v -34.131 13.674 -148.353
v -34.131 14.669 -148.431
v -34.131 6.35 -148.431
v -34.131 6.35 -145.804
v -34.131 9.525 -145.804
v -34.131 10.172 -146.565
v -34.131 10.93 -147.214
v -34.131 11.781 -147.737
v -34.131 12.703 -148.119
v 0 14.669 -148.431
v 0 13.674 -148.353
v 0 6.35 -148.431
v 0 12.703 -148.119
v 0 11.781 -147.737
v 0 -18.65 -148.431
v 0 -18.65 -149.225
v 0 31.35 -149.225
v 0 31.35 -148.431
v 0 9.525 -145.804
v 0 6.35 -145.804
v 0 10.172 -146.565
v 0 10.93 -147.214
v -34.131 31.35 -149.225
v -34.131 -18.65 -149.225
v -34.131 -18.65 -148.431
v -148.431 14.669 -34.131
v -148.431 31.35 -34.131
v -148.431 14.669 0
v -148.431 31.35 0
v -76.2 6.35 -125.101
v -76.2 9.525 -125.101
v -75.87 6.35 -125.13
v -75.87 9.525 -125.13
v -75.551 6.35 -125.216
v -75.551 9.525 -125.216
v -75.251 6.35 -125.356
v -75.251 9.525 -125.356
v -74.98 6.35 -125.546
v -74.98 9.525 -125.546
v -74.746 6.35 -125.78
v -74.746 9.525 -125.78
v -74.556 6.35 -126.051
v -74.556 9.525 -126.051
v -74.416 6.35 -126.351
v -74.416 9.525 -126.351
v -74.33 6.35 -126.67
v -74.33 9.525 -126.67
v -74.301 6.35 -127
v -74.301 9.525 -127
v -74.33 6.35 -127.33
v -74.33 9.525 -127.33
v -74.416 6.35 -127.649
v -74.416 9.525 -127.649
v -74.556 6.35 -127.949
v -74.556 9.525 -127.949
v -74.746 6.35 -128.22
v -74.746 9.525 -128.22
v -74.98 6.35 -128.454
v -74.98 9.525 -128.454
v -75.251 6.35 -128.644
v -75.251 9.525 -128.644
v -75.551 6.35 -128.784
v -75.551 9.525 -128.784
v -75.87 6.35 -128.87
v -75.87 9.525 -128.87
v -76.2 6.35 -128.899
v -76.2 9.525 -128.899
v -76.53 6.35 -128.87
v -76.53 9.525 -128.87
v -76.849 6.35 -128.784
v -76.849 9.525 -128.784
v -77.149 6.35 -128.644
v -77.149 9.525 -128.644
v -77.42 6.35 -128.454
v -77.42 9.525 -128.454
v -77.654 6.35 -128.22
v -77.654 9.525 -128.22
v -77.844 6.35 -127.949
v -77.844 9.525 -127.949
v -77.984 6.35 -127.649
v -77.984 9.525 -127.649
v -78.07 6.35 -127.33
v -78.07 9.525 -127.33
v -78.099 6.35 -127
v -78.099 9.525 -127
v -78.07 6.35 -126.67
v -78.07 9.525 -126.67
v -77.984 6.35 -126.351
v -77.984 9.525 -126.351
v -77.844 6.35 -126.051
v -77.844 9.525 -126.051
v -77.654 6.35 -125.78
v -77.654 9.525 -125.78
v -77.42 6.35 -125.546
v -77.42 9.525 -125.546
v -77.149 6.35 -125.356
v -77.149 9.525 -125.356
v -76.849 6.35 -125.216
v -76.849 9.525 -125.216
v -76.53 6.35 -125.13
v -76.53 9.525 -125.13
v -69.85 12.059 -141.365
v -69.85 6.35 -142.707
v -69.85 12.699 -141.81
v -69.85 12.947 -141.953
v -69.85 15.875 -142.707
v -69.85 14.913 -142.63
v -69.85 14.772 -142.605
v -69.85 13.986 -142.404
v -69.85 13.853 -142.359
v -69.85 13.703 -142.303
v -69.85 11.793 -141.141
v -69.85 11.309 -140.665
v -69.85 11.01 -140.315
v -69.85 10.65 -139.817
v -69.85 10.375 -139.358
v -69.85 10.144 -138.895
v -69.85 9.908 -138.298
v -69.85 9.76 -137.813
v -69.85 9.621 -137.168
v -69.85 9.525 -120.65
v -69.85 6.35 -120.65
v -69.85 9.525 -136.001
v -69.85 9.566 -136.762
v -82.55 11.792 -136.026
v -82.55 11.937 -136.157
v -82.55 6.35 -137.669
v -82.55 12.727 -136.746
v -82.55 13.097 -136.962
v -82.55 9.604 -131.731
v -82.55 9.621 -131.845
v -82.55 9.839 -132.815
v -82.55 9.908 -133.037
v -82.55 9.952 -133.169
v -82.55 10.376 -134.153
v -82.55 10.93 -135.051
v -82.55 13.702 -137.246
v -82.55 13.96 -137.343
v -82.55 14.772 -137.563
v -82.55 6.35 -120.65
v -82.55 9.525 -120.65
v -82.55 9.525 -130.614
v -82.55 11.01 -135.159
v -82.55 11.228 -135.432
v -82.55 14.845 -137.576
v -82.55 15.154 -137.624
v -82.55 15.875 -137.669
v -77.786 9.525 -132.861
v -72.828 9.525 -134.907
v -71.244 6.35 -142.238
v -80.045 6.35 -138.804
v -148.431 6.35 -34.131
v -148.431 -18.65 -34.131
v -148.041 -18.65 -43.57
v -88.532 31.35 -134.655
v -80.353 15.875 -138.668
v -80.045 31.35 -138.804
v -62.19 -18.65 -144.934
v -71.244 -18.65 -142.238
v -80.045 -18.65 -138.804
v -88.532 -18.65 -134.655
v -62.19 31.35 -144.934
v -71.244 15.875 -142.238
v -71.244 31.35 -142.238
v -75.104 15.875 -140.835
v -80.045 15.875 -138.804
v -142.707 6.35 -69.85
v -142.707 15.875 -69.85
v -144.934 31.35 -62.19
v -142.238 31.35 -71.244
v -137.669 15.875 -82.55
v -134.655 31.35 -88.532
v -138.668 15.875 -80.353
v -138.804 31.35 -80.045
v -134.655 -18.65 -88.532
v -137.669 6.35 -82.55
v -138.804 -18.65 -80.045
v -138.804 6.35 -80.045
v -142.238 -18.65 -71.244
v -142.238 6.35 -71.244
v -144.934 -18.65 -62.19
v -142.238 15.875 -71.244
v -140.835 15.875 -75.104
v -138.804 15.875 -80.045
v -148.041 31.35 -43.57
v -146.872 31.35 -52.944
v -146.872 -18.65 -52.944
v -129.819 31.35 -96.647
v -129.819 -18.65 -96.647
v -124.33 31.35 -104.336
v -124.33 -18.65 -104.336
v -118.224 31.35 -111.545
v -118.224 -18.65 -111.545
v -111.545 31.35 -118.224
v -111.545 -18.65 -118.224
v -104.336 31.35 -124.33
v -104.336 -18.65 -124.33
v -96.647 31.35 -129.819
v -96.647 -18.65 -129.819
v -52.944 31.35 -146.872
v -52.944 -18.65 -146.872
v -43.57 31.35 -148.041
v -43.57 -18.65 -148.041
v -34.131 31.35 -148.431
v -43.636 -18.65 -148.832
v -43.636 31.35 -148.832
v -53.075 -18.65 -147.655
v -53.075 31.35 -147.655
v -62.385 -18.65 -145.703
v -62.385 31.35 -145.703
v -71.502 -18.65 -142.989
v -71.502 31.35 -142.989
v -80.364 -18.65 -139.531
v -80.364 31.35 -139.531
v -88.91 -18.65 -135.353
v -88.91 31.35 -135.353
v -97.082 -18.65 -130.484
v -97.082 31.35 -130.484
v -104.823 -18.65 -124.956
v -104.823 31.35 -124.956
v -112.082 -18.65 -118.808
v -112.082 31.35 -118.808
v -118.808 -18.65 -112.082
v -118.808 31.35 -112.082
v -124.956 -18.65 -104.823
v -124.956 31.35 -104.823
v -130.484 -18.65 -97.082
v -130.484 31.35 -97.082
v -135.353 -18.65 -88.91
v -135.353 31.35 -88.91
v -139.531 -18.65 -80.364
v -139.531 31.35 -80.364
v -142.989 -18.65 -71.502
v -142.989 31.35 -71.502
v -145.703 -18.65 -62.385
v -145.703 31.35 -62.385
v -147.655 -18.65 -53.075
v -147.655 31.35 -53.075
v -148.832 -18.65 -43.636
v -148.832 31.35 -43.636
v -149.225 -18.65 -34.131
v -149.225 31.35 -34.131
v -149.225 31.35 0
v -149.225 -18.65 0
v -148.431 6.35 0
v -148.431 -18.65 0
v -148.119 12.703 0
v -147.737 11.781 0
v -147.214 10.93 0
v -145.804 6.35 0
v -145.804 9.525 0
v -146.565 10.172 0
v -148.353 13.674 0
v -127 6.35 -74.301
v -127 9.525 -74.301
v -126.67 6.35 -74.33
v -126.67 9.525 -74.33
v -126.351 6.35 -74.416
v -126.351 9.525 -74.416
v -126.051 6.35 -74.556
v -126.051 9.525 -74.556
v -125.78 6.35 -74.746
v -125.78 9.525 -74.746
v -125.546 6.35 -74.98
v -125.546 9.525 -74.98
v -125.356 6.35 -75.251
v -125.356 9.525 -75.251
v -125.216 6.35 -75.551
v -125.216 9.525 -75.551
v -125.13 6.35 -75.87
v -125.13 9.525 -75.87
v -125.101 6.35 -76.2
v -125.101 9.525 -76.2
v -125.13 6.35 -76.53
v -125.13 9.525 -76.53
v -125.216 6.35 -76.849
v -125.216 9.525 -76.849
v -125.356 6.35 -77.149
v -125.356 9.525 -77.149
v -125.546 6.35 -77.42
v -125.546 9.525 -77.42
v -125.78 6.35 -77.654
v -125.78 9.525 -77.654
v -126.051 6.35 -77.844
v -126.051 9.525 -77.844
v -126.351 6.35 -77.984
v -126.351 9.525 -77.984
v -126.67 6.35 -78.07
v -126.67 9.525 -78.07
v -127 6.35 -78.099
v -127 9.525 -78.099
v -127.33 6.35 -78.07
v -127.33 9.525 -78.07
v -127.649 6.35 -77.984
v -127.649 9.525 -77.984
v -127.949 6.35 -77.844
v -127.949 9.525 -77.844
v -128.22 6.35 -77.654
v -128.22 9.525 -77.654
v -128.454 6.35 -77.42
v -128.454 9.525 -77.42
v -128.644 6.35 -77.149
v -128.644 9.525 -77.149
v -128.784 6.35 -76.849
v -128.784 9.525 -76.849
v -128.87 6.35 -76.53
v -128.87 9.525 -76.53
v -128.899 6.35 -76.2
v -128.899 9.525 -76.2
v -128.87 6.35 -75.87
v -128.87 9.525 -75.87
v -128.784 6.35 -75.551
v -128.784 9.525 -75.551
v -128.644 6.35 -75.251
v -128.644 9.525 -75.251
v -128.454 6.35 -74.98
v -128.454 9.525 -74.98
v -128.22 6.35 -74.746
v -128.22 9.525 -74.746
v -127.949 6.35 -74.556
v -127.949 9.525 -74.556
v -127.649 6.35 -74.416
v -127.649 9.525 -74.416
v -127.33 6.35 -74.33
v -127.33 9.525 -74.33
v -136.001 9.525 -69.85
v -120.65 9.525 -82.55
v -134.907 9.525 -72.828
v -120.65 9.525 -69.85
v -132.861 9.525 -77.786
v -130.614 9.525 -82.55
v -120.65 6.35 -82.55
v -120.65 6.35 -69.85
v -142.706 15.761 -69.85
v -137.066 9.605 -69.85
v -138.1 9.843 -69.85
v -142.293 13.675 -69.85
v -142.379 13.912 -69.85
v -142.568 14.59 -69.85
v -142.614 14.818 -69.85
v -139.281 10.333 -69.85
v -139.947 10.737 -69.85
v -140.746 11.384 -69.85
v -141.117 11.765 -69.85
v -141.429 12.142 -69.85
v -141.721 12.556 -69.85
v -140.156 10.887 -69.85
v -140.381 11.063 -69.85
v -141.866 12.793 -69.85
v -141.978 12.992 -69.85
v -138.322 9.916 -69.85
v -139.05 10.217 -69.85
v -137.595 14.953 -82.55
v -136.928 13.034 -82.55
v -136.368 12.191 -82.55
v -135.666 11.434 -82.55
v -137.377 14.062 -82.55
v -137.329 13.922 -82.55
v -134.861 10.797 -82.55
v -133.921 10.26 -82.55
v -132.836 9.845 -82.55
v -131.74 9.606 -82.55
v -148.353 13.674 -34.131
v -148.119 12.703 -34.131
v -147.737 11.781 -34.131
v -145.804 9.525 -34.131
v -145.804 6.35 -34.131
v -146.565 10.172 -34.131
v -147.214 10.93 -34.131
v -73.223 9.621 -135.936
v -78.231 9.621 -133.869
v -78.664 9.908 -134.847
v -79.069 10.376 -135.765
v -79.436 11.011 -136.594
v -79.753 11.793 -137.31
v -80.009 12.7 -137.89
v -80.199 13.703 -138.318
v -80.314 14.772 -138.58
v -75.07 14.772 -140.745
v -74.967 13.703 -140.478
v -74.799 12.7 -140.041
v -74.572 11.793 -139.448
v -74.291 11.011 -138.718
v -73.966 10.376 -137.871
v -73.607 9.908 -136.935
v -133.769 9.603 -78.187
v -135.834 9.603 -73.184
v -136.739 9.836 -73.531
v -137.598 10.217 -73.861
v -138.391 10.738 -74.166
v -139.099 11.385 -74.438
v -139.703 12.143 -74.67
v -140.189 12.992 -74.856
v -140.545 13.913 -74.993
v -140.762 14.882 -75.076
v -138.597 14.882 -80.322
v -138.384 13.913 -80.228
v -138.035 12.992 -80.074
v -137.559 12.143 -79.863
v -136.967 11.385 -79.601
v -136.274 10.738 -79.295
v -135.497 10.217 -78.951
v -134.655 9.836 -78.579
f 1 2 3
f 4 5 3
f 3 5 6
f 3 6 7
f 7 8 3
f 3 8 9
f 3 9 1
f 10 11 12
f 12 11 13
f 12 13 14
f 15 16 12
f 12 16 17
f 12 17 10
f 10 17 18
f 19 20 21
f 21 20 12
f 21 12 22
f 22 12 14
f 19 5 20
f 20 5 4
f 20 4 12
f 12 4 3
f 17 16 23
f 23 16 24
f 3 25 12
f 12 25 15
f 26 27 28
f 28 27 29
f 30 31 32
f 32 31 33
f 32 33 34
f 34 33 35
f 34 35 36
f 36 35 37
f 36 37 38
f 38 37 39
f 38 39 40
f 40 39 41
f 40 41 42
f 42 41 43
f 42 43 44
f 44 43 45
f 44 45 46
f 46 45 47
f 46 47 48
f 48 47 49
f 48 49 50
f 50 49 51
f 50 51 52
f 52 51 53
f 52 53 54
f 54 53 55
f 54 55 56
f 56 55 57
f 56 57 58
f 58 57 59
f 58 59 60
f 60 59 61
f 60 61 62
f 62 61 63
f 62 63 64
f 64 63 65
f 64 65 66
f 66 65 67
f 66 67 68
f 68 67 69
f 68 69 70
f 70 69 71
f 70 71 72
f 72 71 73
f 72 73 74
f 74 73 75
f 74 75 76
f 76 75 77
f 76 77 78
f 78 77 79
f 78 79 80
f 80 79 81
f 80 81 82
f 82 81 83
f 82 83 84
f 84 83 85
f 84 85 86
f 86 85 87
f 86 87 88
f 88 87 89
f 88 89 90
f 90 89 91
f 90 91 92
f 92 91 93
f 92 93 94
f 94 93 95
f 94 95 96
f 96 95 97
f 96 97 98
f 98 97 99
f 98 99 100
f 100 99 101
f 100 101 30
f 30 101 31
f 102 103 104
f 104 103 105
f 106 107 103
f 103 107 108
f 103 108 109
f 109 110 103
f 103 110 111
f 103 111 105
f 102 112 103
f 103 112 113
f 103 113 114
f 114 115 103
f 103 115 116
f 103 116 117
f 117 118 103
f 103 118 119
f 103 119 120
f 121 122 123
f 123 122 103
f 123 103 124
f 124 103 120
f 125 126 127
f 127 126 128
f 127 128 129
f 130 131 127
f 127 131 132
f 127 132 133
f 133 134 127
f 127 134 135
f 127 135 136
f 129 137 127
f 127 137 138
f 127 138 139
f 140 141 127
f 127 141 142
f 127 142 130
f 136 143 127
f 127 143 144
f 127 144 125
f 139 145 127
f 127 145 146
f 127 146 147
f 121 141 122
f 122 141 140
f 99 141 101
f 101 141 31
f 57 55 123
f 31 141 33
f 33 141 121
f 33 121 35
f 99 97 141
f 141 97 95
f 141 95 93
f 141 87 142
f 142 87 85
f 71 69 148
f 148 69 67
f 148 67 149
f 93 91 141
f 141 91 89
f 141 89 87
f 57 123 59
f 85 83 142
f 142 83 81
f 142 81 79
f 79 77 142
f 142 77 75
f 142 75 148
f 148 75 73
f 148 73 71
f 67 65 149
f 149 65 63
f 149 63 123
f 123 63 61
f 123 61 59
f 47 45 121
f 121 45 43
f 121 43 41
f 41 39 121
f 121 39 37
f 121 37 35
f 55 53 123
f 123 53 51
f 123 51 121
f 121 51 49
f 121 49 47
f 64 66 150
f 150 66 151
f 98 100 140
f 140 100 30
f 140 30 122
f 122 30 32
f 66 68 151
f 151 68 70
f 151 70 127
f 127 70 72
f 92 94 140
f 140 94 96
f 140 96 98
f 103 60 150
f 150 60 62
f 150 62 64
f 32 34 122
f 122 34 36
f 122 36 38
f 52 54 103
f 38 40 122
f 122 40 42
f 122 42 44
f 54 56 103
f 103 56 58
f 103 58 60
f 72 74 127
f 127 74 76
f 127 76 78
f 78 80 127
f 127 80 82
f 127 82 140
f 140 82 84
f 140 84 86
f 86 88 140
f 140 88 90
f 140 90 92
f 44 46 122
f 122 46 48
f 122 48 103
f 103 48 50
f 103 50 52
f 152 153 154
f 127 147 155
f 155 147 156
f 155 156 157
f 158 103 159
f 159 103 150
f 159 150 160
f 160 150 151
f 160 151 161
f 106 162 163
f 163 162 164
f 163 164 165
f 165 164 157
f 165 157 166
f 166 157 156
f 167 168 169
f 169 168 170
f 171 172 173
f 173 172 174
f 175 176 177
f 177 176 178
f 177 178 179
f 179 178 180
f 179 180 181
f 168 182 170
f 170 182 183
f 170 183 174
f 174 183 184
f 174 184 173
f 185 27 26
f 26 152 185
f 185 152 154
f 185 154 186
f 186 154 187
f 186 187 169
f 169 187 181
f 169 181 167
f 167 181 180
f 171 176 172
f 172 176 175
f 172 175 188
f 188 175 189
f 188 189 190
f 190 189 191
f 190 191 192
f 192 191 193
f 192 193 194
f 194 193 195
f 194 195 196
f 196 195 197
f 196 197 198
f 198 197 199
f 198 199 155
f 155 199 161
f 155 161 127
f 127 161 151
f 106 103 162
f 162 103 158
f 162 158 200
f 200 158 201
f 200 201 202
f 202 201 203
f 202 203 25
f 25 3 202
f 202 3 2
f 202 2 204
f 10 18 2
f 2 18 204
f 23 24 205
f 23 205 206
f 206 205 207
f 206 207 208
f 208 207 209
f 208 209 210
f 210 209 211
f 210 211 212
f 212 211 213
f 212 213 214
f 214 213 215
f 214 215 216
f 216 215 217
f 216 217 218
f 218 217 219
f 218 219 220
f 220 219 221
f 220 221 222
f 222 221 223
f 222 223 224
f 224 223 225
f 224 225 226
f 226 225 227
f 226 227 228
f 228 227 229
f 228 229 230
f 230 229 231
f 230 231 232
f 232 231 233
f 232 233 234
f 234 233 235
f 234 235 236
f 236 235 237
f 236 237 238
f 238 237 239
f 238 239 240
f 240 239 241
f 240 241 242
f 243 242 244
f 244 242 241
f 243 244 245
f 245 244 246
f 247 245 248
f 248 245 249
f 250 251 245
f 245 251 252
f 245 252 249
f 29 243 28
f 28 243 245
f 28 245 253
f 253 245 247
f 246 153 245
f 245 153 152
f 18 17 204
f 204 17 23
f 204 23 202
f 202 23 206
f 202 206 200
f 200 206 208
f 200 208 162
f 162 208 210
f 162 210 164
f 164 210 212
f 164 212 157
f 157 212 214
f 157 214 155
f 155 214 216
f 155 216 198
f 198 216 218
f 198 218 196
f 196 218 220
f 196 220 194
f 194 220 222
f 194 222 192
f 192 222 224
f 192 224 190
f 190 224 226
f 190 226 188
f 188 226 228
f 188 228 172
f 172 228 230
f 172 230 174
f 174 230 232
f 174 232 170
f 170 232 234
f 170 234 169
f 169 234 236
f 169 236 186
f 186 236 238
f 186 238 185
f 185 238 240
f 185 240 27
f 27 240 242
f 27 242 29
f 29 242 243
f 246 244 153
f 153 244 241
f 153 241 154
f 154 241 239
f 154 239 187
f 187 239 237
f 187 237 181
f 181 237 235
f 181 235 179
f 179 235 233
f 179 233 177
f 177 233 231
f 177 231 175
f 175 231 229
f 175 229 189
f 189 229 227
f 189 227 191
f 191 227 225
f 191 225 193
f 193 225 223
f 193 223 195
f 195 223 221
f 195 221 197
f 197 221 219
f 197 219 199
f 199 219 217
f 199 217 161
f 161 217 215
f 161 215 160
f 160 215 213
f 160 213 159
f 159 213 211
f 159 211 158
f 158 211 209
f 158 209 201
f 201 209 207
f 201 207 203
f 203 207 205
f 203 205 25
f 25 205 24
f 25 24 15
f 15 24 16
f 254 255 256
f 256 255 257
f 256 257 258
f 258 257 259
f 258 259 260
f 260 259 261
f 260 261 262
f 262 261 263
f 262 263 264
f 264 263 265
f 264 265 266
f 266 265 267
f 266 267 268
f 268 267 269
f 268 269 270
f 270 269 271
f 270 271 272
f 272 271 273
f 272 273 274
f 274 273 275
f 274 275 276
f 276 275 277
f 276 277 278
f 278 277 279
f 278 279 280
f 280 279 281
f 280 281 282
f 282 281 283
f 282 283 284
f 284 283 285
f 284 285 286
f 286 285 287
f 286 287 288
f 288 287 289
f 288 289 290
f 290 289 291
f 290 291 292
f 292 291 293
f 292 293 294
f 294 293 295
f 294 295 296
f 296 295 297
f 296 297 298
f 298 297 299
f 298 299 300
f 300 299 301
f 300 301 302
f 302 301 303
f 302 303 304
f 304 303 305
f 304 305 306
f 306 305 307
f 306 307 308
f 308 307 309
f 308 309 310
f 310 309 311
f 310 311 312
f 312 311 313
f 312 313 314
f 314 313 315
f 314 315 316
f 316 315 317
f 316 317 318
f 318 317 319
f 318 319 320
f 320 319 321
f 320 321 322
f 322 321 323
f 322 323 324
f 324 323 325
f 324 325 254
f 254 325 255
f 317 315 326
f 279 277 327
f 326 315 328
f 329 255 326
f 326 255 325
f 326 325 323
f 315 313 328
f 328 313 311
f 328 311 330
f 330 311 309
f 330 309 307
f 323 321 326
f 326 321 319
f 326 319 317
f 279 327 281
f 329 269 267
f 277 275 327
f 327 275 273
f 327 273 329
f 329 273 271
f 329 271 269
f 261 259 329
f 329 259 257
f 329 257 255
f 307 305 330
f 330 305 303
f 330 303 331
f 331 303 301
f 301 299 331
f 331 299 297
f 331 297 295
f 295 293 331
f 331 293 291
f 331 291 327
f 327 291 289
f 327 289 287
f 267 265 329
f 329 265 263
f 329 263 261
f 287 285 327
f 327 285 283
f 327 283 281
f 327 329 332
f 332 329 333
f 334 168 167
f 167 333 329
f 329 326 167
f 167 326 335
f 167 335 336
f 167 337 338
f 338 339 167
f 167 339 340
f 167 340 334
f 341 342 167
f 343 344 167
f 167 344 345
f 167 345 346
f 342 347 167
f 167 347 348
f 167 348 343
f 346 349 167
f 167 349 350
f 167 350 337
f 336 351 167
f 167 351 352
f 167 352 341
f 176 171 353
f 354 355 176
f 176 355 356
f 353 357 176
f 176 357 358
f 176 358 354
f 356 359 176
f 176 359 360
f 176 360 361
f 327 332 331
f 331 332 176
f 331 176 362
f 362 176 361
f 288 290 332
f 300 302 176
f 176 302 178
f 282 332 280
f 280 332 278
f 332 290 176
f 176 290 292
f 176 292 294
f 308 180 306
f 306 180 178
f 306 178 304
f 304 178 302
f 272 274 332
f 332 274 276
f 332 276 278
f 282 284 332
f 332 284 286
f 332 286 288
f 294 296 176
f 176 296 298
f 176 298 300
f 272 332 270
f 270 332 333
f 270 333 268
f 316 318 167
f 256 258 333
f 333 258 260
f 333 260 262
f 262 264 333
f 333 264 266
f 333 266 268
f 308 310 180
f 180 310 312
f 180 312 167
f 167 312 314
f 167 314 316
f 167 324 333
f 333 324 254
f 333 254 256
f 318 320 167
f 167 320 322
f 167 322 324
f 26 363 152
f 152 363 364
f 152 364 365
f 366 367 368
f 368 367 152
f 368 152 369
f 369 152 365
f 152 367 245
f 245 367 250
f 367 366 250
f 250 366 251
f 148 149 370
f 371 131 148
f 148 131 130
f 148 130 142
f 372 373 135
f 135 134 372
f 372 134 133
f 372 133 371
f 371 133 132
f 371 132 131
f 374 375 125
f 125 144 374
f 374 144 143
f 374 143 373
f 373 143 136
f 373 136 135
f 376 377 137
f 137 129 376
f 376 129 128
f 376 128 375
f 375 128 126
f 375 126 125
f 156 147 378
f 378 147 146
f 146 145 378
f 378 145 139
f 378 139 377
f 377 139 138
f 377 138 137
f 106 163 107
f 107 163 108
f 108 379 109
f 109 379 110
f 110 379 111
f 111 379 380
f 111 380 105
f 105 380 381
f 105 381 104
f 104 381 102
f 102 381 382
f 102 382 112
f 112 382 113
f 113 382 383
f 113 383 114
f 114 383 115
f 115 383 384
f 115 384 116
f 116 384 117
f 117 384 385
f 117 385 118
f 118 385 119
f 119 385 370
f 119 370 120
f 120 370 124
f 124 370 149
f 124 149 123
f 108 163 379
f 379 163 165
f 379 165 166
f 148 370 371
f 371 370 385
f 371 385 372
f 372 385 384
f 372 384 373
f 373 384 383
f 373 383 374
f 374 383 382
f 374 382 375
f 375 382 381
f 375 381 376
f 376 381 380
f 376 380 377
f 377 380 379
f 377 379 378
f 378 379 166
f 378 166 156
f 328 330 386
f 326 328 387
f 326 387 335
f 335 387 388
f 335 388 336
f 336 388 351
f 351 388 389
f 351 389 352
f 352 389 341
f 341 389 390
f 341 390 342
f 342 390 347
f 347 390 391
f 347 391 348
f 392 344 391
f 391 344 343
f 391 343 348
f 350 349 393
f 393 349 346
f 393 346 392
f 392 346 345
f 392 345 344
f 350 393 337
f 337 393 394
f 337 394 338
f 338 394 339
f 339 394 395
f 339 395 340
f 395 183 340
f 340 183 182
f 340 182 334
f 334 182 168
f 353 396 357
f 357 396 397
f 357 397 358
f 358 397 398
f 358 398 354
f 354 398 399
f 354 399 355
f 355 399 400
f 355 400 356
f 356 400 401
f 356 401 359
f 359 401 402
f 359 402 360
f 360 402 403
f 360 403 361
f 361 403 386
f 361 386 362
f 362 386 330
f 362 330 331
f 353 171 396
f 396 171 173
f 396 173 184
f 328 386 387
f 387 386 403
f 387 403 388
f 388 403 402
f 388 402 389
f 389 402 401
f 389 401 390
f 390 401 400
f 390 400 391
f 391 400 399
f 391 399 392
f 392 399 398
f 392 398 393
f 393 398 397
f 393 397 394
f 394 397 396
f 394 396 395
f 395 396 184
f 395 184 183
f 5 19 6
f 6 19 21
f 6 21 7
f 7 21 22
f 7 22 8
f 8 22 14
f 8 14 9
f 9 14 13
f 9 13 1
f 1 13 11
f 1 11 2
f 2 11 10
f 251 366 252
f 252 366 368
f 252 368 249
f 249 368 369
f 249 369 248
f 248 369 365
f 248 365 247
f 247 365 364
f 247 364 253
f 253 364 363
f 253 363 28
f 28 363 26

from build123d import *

# Parameters (mm, degrees)
BOSS_EXTRUDE1_DEPTH      = 6.35
CUT_EXTRUDE1_DEPTH       = 6.35
M4_CLEARANCE_HOLE1_D     = 4.5
F_6_CLEARANCE_HOLE1_D    = 3.7973
F_6_CLEARANCE_HOLE2_D    = 3.7973
SKETCH29_R               = 1.898650000000008
BOSS_EXTRUDE4_DEPTH      = 3.175
CUT_EXTRUDE9_DEPTH       = 211.00951038732748
BOSS_EXTRUDE5_DEPTH      = 25
BOSS_EXTRUDE5_DEPTH_BACK = 25
BOSS_EXTRUDE6_DEPTH      = 3.420518063
SKETCH32_W               = 34.13124999999999
SKETCH32_H               = 3.175
BOSS_EXTRUDE7_DEPTH      = 3.420518063
FILLET2_R                = 6.35
FILLET3_R                = 6.35


with BuildPart() as part:
    # Sketch1 → Boss-Extrude1 (new body)
    with BuildSketch(Plane(origin=(0, 0, 0), x_dir=(1, 0, 0), z_dir=(0, 1, 0))):
        with BuildLine():
            Line((-34.13124999999996, -148.43124999999998), (34.131250000000016, -148.43124999999998))
            ThreePointArc((34.131250000000016, -148.43124999999998), (114.9535550896224, -114.95355508962234), (148.43124999999998, -34.13124999999996))
            Line((148.43124999999998, -34.13124999999996), (148.43124999999998, 34.131250000000016))
            ThreePointArc((148.43124999999998, 34.131250000000016), (114.9535550896224, 114.9535550896224), (34.131250000000016, 148.43125000000003))
            Line((34.131250000000016, 148.43125000000003), (-34.13124999999996, 148.43125000000003))
            ThreePointArc((-34.13124999999996, 148.43125000000003), (-114.95355508962231, 114.95355508962237), (-148.43124999999992, 34.131250000000016))
            Line((-148.43124999999992, 34.131250000000016), (-148.43124999999992, -34.13124999999996))
            ThreePointArc((-148.43124999999992, -34.13124999999996), (-114.95355508962234, -114.95355508962234), (-34.13124999999996, -148.43124999999998))
        make_face()
    extrude(amount=BOSS_EXTRUDE1_DEPTH)

    # Sketch4 → Cut-Extrude1 (cut)
    # profile 1 of 4: a face of its own
    with BuildSketch(Plane(origin=(0, 6.35, 0), x_dir=(1, 0, 0), z_dir=(0, 1, 0))):
        with BuildLine():
            ThreePointArc((-39.4480000000008, 145.80448193711538), (-49.893930566331434, 144.3300216659586), (-59.52363351317686, 140.0218527227403))
            ThreePointArc((-59.52363351317686, 140.0218527227403), (-63.81750000000949, 132.2535819370977), (-59.52363351317676, 124.48531115145514))
            ThreePointArc((-59.52363351317676, 124.48531115145514), (-49.89393056632884, 120.17714220824536), (-39.448000000000604, 118.70268193708908))
            Line((-39.448000000000604, 118.70268193708908), (39.44799999999939, 118.70268193708088))
            ThreePointArc((39.44799999999939, 118.70268193708088), (49.89393056633003, 120.17714220823765), (59.52363351317546, 124.48531115145597))
            ThreePointArc((59.52363351317546, 124.48531115145597), (63.817500000008096, 132.25358193709857), (59.523633513170694, 140.0218527227337))
            ThreePointArc((59.523633513170694, 140.0218527227337), (49.893930566325004, 144.3300216659425), (39.4479999999992, 145.80448193710717))
            Line((39.4479999999992, 145.80448193710717), (-39.4480000000008, 145.80448193711538))
        make_face()
        with BuildLine():
            ThreePointArc((39.447999999999375, 120.29018193708089), (49.454528647108134, 121.70261990502122), (58.67916380898574, 125.82956825808905))
            ThreePointArc((58.67916380898574, 125.82956825808905), (62.229999999999336, 132.25358193709857), (58.67916380898565, 138.67759561610805))
            ThreePointArc((58.67916380898565, 138.67759561610805), (49.45452864710313, 142.80454396915894), (39.447999999999205, 144.21698193711595))
            Line((39.447999999999205, 144.21698193711595), (-39.44800000000079, 144.21698193711538))
            ThreePointArc((-39.44800000000079, 144.21698193711538), (-49.454528647109534, 142.80454396917506), (-58.67916380898715, 138.67759561610723))
            ThreePointArc((-58.67916380898715, 138.67759561610723), (-62.23000000000073, 132.25358193709772), (-58.67916380898706, 125.82956825808822))
            ThreePointArc((-58.67916380898706, 125.82956825808822), (-49.454528647104546, 121.70261990503734), (-39.44800000000062, 120.29018193708033))
            Line((-39.44800000000062, 120.29018193708033), (39.447999999999375, 120.29018193708089))
        make_face(mode=Mode.SUBTRACT)
    # profile 2 of 4: a face of its own
    with BuildSketch(Plane(origin=(0, 6.35, 0), x_dir=(1, 0, 0), z_dir=(0, 1, 0))):
        with BuildLine():
            Line((-39.44800000000062, 120.29018193708033), (39.447999999999375, 120.29018193708089))
            ThreePointArc((39.447999999999375, 120.29018193708089), (49.454528647108134, 121.70261990502122), (58.67916380898574, 125.82956825808905))
            ThreePointArc((58.67916380898574, 125.82956825808905), (62.229999999999336, 132.25358193709857), (58.67916380898565, 138.67759561610805))
            ThreePointArc((58.67916380898565, 138.67759561610805), (49.45452864710313, 142.80454396915894), (39.447999999999205, 144.21698193711595))
            Line((39.447999999999205, 144.21698193711595), (-39.44800000000079, 144.21698193711538))
            ThreePointArc((-39.44800000000079, 144.21698193711538), (-49.454528647109534, 142.80454396917506), (-58.67916380898715, 138.67759561610723))
            ThreePointArc((-58.67916380898715, 138.67759561610723), (-62.23000000000073, 132.25358193709772), (-58.67916380898706, 125.82956825808822))
            ThreePointArc((-58.67916380898706, 125.82956825808822), (-49.454528647104546, 121.70261990503734), (-39.44800000000062, 120.29018193708033))
        make_face()
    # profile 3 of 4: a face of its own
    with BuildSketch(Plane(origin=(0, 6.35, 0), x_dir=(1, 0, 0), z_dir=(0, 1, 0))):
        with BuildLine():
            ThreePointArc((-59.5236335131764, -124.48531115145636), (-63.8175000000091, -132.25358193709894), (-59.52363351317174, -140.02185272273414))
            ThreePointArc((-59.52363351317174, -140.02185272273414), (-49.893930566326084, -144.33002166594298), (-39.44800000000029, -145.80448193711646))
            Line((-39.44800000000029, -145.80448193711646), (39.44799999999971, -145.80448193711646))
            ThreePointArc((39.44799999999971, -145.80448193711646), (49.89393056633035, -144.33002166595978), (59.52363351317579, -140.02185272274153))
            ThreePointArc((59.52363351317579, -140.02185272274153), (63.8175000000085, -132.25358193709894), (59.52363351317116, -124.48531115146376))
            ThreePointArc((59.52363351317116, -124.48531115146376), (49.89393056632551, -120.1771422082549), (39.44799999999971, -118.70268193709018))
            Line((39.44799999999971, -118.70268193709018), (-39.44800000000029, -118.70268193708142))
            ThreePointArc((-39.44800000000029, -118.70268193708142), (-49.89393056633094, -120.17714220823811), (-59.5236335131764, -124.48531115145636))
        make_face()
        with BuildLine():
            ThreePointArc((-58.679163808986694, -138.67759561610845), (-49.454528647104205, -142.8045439691594), (-39.44800000000029, -144.21698193711646))
            Line((-39.44800000000029, -144.21698193711646), (39.44799999999971, -144.21698193711646))
            ThreePointArc((39.44799999999971, -144.21698193711646), (49.45452864710846, -142.8045439691762), (58.679163808986104, -138.67759561610845))
            ThreePointArc((58.679163808986104, -138.67759561610845), (62.22999999999976, -132.25358193709894), (58.679163808986104, -125.82956825808944))
            ThreePointArc((58.679163808986104, -125.82956825808944), (49.45452864710362, -121.7026199050385), (39.44799999999971, -120.29018193708143))
            Line((39.44799999999971, -120.29018193708143), (-39.44800000000029, -120.29018193708143))
            ThreePointArc((-39.44800000000029, -120.29018193708143), (-49.45452864710904, -121.70261990502169), (-58.679163808986694, -125.82956825808944))
            ThreePointArc((-58.679163808986694, -125.82956825808944), (-62.230000000000345, -132.25358193709894), (-58.679163808986694, -138.67759561610845))
        make_face(mode=Mode.SUBTRACT)
    # profile 4 of 4: a face of its own
    with BuildSketch(Plane(origin=(0, 6.35, 0), x_dir=(1, 0, 0), z_dir=(0, 1, 0))):
        with BuildLine():
            ThreePointArc((-58.679163808986694, -125.82956825808944), (-62.230000000000345, -132.25358193709894), (-58.679163808986694, -138.67759561610845))
            ThreePointArc((-58.679163808986694, -138.67759561610845), (-49.454528647104205, -142.8045439691594), (-39.44800000000029, -144.21698193711646))
            Line((-39.44800000000029, -144.21698193711646), (39.44799999999971, -144.21698193711646))
            ThreePointArc((39.44799999999971, -144.21698193711646), (49.45452864710846, -142.8045439691762), (58.679163808986104, -138.67759561610845))
            ThreePointArc((58.679163808986104, -138.67759561610845), (62.22999999999976, -132.25358193709894), (58.679163808986104, -125.82956825808944))
            ThreePointArc((58.679163808986104, -125.82956825808944), (49.45452864710362, -121.7026199050385), (39.44799999999971, -120.29018193708143))
            Line((39.44799999999971, -120.29018193708143), (-39.44800000000029, -120.29018193708143))
            ThreePointArc((-39.44800000000029, -120.29018193708143), (-49.45452864710904, -121.70261990502169), (-58.679163808986694, -125.82956825808944))
        make_face()
    extrude(amount=-CUT_EXTRUDE1_DEPTH, mode=Mode.SUBTRACT)

    # M4 Clearance Hole1 (through all)
    with Locations(Plane(origin=(0, 6.35, 0), x_dir=(1, 0, 0), z_dir=(0, 1, 0))):
        with Locations((-16, -103.6875), (16, -103.6875), (22, -60.325), (-10, -60.325), (-10, 60.325), (22, 60.325), (16, 103.6875), (-16, 103.6875)):
            Hole(M4_CLEARANCE_HOLE1_D / 2)

    # #6 Clearance Hole1 (through all)
    with Locations(Plane(origin=(0, 6.35, 0), x_dir=(1, 0, 0), z_dir=(0, 1, 0))):
        with Locations((-101.6, -101.6), (-101.6, 101.6), (101.6, 101.6), (101.6, -101.6), (-127, -76.2), (-127, -50.8), (-127, 50.8), (-127, 76.2), (-101.6, 76.2), (-101.6, 50.8), (-101.6, 25.4), (-101.6, 0), (-101.6, -25.4), (-101.6, -50.8), (-101.6, -76.2), (-76.2, -101.6), (-50.8, -101.6), (-50.8, -76.2), (-76.2, -76.2), (-76.2, -50.8), (-50.8, -50.8), (-50.8, -25.4), (-76.2, -25.4), (-76.2, 0), (-50.8, 0), (-50.8, 25.4), (-76.2, 25.4), (-76.2, 50.8), (-50.8, 50.8), (-50.8, 76.2), (-76.2, 76.2), (-76.2, 101.6), (-50.8, 101.6), (50.8, -101.6), (76.2, -101.6), (101.6, -76.2), (127, -76.2), (127, -50.8), (101.6, -25.4), (101.6, -50.8), (76.2, -25.4), (76.2, -50.8), (76.2, -76.2), (50.8, -76.2), (50.8, -50.8), (50.8, -25.4), (50.8, 0), (76.2, 0), (101.6, 0), (101.6, 25.4), (101.6, 50.8), (101.6, 76.2), (127, 50.8), (127, 76.2), (76.2, 101.6), (50.8, 101.6), (50.8, 76.2), (76.2, 76.2), (76.2, 50.8), (76.2, 25.4), (50.8, 25.4), (50.8, 50.8), (0, 0), (-25.4, -25.4), (-25.4, 0), (-25.4, 25.4), (0, 25.4), (25.4, 25.4), (25.4, 0), (25.4, -25.4), (0, -25.4), (127, -25.4), (127, 0), (127, 25.4), (-127, -25.4), (-127, 0), (-127, 25.4)):
            Hole(F_6_CLEARANCE_HOLE1_D / 2)

    # #6 Clearance Hole2 (through all)
    with Locations(Plane(origin=(0, 6.35, 0), x_dir=(1, 0, 0), z_dir=(0, 1, 0))):
        with Locations((-76.2, -127), (76.2, -127), (76.2, 127), (-76.2, 127)):
            Hole(F_6_CLEARANCE_HOLE2_D / 2)

    # Sketch29 → Boss-Extrude4 (add)
    # profile 1 of 4: a face of its own
    with BuildSketch(Plane(origin=(0, 6.35, 0), x_dir=(1, 0, 0), z_dir=(0, 1, 0))):
        with BuildLine():
            Line((-69.85, 120.64999999999999), (-69.85, 142.70684992207043))
            ThreePointArc((-69.85, 142.70684992207043), (-76.27533753088031, 140.3779717667891), (-82.55, 137.66923649982286))
            Line((-82.55, 137.6692364998229), (-82.54999999999998, 120.64999999999999))
            Line((-82.54999999999998, 120.64999999999999), (-69.85, 120.64999999999999))
        make_face()
        with Locations(Location((-76.19999999999999, 127, 0), (0, 0, 270))):
            Circle(SKETCH29_R, mode=Mode.SUBTRACT)
    # profile 2 of 4: a face of its own
    with BuildSketch(Plane(origin=(0, 6.35, 0), x_dir=(1, 0, 0), z_dir=(0, 1, 0))):
        with BuildLine():
            Line((-120.6500000000006, 82.54999999999993), (-137.6692364998229, 82.54999999999993))
            ThreePointArc((-137.66923649982286, 82.5499999999999), (-140.37797176678907, 76.27533753088025), (-142.70684992207038, 69.84999999999994))
            Line((-142.70684992207043, 69.84999999999994), (-120.6500000000006, 69.84999999999994))
            Line((-120.6500000000006, 69.84999999999994), (-120.6500000000006, 82.54999999999993))
        make_face()
        with Locations(Location((-127.00000000000061, 76.19999999999993, 0), (0, 0, 270))):
            Circle(SKETCH29_R, mode=Mode.SUBTRACT)
    # profile 3 of 4: a face of its own
    with BuildSketch(Plane(origin=(0, 6.35, 0), x_dir=(1, 0, 0), z_dir=(0, 1, 0))):
        Polygon((-145.8044819371153, 34.13124999999998), (-145.8044819371153, 0), (-148.43124999999995, 2.082e-14), (-148.43124999999995, 34.131249999999994), align=None)
    # profile 4 of 4: a face of its own
    with BuildSketch(Plane(origin=(0, 6.35, 0), x_dir=(1, 0, 0), z_dir=(0, 1, 0))):
        Polygon((2.776e-14, 148.43125), (0, 145.80448193711538), (-34.13124999999999, 145.80448193711538), (-34.13124999999996, 148.43125000000003), align=None)
    extrude(amount=BOSS_EXTRUDE4_DEPTH)

    # Sketch30 → Cut-Extrude9 (cut, through all)
    with BuildSketch(Plane(origin=(0, 6.35, 0), x_dir=(1, 0, 0), z_dir=(0, 1, 0))):
        with BuildLine():
            Line((-34.13124999999998, -148.43124999999995), (34.131250000000016, -148.43124999999998))
            ThreePointArc((34.131250000000016, -148.43124999999998), (114.9535550896224, -114.95355508962234), (148.43125, -34.13124999999996))
            Line((148.43125, -34.13124999999996), (148.43124999999998, 34.131250000000016))
            ThreePointArc((148.43124999999998, 34.131250000000016), (114.95355508962237, 114.95355508962237), (34.13125000000002, 148.43125))
            Line((34.13125000000002, 148.43125), (-34.13124999999996, 148.43125000000003))
            ThreePointArc((-34.13124999999996, 148.43125000000003), (-114.95355508962234, 114.9535550896224), (-148.43124999999995, 34.13125000000003))
            Line((-148.43124999999995, 34.13125000000003), (-148.43124999999995, -34.131249999999945))
            ThreePointArc((-148.43124999999995, -34.131249999999945), (-114.95355508962234, -114.95355508962231), (-34.13124999999998, -148.43124999999995))
        make_face()
    extrude(amount=-CUT_EXTRUDE9_DEPTH, mode=Mode.SUBTRACT)


with BuildPart() as cut_extrude9_piece_1:
    # of the separate pieces the step leaves, piece 1, a body of its own (cut_extrude9_pieces)
    add(part.part.solids().sort_by_distance((-82.55, 6.35, -137.6692365))[0])



with BuildPart() as cut_extrude9_piece_2:
    # of the separate pieces the step leaves, piece 2, a body of its own (cut_extrude9_pieces)
    add(part.part.solids().sort_by_distance((-142.706849922, 6.35, -69.85))[0])


with BuildPart() as cut_extrude9_piece_3:
    # of the separate pieces the step leaves, piece 3, a body of its own (cut_extrude9_pieces)
    add(part.part.solids().sort_by_distance((-148.43125, 6.35, -34.13125))[0])


with BuildPart() as cut_extrude9_piece_4:
    # of the separate pieces the step leaves, piece 4, a body of its own (cut_extrude9_pieces)
    add(part.part.solids().sort_by_distance((-34.13125, 6.35, -145.804481937))[0])


with BuildPart() as cut_extrude9_piece_1_1:
    add(cut_extrude9_piece_1.part)

    add(cut_extrude9_piece_2.part)  # Boss-Extrude5 merges Cut-Extrude9 piece 2
    # Sketch29<7> → Boss-Extrude5 (add, two sides: drawn at the far end of the back side and taken through both)
    with BuildSketch(Plane(origin=(0, 6.35, 0), x_dir=(1, 0, 0), z_dir=(0, 1, 0)).offset(-BOSS_EXTRUDE5_DEPTH_BACK)):
        with BuildLine():
            ThreePointArc((-69.85, 142.70684992207043), (-52.21852354947877, 146.99107693388436), (-34.13124999999996, 148.43125000000003))
            Line((-34.13124999999996, 148.43125000000003), (2.842e-14, 148.43125))
            Line((2.776e-14, 148.43125), (2.776e-14, 149.22500000000002))
            Line((2.776e-14, 149.22500000000002), (-34.13124999999996, 149.22500000000002))
            ThreePointArc((-34.13124999999995, 149.22500000000002), (-115.51482109718914, 115.51482109718923), (-149.22499999999997, 34.13125000000003))
            Line((-149.22499999999997, 34.131249999999994), (-149.22499999999997, 2.132e-14))
            Line((-149.22499999999997, 2.082e-14), (-148.43124999999995, 2.082e-14))
            Line((-148.43124999999995, 2.132e-14), (-148.43124999999995, 34.131249999999994))
            ThreePointArc((-148.43124999999995, 34.13125000000001), (-146.9910769338843, 52.218523549478746), (-142.70684992207038, 69.84999999999994))
            ThreePointArc((-142.70684992207038, 69.84999999999994), (-140.37797176678907, 76.27533753088025), (-137.66923649982286, 82.5499999999999))
            ThreePointArc((-137.6692364998229, 82.54999999999994), (-114.9535550896224, 114.95355508962237), (-82.55000000000001, 137.66923649982292))
            ThreePointArc((-82.55, 137.66923649982286), (-76.27533753088031, 140.3779717667891), (-69.85, 142.70684992207043))
        make_face()
    extrude(amount=BOSS_EXTRUDE5_DEPTH + BOSS_EXTRUDE5_DEPTH_BACK)


    add(cut_extrude9_piece_3.part)  # Boss-Extrude6 merges Cut-Extrude9 piece 3
    # Sketch31 → Boss-Extrude6 (add)
    with BuildSketch(Plane(origin=(-145.8044819371153, 0, 0), x_dir=(0, 0, -1), z_dir=(1, 0, 0))):
        Polygon((1.15561e-12, 6.35), (34.13124999999998, 6.35), (34.13124999999998, 9.524999999999999), (1.15548e-12, 9.524999999999999), align=None)
    extrude(amount=-BOSS_EXTRUDE6_DEPTH)


    add(cut_extrude9_piece_4.part)  # Boss-Extrude7 merges Cut-Extrude9 piece 4
    # Sketch32 → Boss-Extrude7 (add)
    with BuildSketch(Plane.XY.offset(-145.80448193711126)):
        with Locations((-17.065625000015128, 7.937499999999998)):
            Rectangle(SKETCH32_W, SKETCH32_H)
    extrude(amount=-BOSS_EXTRUDE7_DEPTH)

    # Fillet2
    fillet2_edges = [cut_extrude9_piece_1_1.edges().sort_by_distance(p)[0] for p in [
        (-76.27533753088031, 9.524999999999999, -140.3779717667891),
        (-140.37797176678907, 9.524999999999999, -76.27533753088022),
    ]]
    fillet(fillet2_edges, radius=FILLET2_R)

    # Fillet3
    # the kernel refuses this fillet: 6.35 mm, written as the material it adds along each edge
    with BuildSketch(Plane(origin=(-34.13124999999996, 9.524999999999999, -148.43125000000003), x_dir=(0, 1, 0), z_dir=(1, 0, 8.3e-16))) as fillet3_piece_1:
        with BuildLine():
            CenterArc((5.143932731135228, 6.349999999999994), FILLET3_R, 215.89740993891724, 54.102590061082765)
            Line((0, 2.6267680628846506), (-0.10287865462270496, 2.5523034241423375))
            ThreePointArc((-0.10287865462270496, 2.5523034241423375), (-0.12700000000000067, 1.3133840314423253), (-0.12700000000000067, 0))
            Line((-0.12700000000000067, 0), (0, -0.12700000000000955))
            Line((0, -0.12700000000000955), (5.143932731135228, -0.12700000000000955))
            Line((5.143932731135228, -0.12700000000000955), (5.143932731135228, 0))
        make_face()
    extrude(amount=34.13124999999999)
    with BuildSketch(Plane(origin=(-148.43124999999995, 9.524999999999999, -2.082e-14), x_dir=(0, 1, 0), z_dir=(0, 0, -1))) as fillet3_piece_2:
        with BuildLine():
            CenterArc((5.143932731135228, 6.349999999999994), FILLET3_R, 215.89740993891724, 54.102590061082765)
            Line((0, 2.6267680628846506), (-0.10287865462270496, 2.5523034241423375))
            ThreePointArc((-0.10287865462270496, 2.5523034241423375), (-0.12700000000000067, 1.3133840314423253), (-0.12700000000000067, 0))
            Line((-0.12700000000000067, 0), (0, -0.12700000000000955))
            Line((0, -0.12700000000000955), (5.143932731135228, -0.12700000000000955))
            Line((5.143932731135228, -0.12700000000000955), (5.143932731135228, 0))
        make_face()
    extrude(amount=34.13124999999997)


solid = cut_extrude9_piece_1_1.part
